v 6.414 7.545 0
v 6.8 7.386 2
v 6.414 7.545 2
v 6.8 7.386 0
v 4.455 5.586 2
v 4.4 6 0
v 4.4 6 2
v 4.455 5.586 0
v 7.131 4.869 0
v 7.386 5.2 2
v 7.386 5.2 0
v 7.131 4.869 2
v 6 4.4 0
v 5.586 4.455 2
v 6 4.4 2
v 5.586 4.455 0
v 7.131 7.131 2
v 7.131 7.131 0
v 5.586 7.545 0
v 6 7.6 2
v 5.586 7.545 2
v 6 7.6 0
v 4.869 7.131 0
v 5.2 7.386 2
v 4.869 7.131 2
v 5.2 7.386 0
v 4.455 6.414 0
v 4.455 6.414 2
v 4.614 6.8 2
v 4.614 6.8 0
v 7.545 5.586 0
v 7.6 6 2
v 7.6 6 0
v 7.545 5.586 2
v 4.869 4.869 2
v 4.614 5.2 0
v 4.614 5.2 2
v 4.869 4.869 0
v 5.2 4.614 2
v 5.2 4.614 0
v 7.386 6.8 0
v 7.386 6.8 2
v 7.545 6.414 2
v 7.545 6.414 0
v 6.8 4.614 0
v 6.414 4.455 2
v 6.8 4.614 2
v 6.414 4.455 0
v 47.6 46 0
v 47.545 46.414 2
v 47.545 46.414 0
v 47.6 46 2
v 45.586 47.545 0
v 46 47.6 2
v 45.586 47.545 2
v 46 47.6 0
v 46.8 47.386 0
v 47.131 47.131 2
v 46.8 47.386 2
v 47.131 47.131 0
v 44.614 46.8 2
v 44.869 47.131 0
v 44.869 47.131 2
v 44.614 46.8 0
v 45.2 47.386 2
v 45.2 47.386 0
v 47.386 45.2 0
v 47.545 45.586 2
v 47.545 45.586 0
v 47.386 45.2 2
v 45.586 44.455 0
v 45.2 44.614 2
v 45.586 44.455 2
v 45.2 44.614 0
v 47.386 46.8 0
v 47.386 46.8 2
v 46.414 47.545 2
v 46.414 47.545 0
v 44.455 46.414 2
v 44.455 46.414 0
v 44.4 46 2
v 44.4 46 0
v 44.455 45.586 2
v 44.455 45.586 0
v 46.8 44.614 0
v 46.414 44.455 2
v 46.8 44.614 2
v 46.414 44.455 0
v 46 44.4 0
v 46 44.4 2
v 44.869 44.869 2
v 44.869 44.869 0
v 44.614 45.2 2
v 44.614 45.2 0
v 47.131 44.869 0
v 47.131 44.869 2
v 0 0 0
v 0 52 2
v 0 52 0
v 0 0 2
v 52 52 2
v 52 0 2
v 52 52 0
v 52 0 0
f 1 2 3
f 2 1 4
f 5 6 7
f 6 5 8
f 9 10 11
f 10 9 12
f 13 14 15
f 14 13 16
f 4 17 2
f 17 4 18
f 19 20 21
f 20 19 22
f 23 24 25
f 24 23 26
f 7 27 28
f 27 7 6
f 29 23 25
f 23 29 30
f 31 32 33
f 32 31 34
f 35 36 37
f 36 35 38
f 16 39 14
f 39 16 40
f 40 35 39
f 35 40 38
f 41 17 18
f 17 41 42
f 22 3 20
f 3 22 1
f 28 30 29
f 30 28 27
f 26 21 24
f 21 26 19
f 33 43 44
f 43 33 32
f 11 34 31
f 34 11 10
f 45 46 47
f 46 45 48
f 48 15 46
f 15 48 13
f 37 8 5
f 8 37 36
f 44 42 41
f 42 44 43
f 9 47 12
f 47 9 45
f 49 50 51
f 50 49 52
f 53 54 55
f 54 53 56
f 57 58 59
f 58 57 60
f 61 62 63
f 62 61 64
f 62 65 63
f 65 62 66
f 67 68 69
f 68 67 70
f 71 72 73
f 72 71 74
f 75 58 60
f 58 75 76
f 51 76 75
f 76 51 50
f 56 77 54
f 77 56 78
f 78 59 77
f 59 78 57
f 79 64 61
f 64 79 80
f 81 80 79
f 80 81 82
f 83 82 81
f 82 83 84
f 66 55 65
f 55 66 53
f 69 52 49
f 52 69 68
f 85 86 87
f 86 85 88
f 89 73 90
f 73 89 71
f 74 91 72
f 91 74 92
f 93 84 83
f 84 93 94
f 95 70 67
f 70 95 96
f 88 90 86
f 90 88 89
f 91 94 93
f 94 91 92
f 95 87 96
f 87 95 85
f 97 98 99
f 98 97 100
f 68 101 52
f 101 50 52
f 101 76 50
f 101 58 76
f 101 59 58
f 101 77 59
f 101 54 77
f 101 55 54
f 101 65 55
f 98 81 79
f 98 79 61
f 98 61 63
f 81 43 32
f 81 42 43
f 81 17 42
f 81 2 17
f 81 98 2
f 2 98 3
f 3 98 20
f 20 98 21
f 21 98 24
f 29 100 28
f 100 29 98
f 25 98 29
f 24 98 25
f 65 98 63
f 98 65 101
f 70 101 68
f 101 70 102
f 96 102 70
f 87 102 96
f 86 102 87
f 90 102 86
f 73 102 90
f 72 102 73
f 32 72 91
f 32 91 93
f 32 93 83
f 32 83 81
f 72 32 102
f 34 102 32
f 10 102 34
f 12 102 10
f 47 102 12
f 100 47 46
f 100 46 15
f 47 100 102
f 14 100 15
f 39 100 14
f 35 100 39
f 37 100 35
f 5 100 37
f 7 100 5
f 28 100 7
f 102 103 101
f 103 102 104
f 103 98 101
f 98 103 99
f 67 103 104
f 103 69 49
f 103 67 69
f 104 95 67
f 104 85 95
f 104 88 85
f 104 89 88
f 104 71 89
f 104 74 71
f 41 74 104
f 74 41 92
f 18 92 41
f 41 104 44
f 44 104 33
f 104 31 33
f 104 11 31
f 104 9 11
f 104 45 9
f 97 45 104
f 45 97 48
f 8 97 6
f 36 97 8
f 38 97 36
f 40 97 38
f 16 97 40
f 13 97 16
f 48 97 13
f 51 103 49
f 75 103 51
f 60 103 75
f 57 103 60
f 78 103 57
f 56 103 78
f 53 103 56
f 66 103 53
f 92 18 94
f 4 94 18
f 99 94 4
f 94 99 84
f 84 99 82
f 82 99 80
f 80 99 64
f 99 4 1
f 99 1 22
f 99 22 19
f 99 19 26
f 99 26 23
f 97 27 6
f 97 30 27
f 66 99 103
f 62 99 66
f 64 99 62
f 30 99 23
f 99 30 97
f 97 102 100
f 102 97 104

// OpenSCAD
// print_pump_station_lid.scad — Nắp hộp L298N (1 chi tiết in riêng).
// In phẳng. Bắt 2 vít M3 tự-ren vào 2 gờ chéo của print_pump_station.stl để
// tháo/lắp khi cần chỉnh jumper 5V hoặc kiểm tra board.
include <../constants.scad>
use <../components/pump_station_002.scad>

pump_station_lid();
